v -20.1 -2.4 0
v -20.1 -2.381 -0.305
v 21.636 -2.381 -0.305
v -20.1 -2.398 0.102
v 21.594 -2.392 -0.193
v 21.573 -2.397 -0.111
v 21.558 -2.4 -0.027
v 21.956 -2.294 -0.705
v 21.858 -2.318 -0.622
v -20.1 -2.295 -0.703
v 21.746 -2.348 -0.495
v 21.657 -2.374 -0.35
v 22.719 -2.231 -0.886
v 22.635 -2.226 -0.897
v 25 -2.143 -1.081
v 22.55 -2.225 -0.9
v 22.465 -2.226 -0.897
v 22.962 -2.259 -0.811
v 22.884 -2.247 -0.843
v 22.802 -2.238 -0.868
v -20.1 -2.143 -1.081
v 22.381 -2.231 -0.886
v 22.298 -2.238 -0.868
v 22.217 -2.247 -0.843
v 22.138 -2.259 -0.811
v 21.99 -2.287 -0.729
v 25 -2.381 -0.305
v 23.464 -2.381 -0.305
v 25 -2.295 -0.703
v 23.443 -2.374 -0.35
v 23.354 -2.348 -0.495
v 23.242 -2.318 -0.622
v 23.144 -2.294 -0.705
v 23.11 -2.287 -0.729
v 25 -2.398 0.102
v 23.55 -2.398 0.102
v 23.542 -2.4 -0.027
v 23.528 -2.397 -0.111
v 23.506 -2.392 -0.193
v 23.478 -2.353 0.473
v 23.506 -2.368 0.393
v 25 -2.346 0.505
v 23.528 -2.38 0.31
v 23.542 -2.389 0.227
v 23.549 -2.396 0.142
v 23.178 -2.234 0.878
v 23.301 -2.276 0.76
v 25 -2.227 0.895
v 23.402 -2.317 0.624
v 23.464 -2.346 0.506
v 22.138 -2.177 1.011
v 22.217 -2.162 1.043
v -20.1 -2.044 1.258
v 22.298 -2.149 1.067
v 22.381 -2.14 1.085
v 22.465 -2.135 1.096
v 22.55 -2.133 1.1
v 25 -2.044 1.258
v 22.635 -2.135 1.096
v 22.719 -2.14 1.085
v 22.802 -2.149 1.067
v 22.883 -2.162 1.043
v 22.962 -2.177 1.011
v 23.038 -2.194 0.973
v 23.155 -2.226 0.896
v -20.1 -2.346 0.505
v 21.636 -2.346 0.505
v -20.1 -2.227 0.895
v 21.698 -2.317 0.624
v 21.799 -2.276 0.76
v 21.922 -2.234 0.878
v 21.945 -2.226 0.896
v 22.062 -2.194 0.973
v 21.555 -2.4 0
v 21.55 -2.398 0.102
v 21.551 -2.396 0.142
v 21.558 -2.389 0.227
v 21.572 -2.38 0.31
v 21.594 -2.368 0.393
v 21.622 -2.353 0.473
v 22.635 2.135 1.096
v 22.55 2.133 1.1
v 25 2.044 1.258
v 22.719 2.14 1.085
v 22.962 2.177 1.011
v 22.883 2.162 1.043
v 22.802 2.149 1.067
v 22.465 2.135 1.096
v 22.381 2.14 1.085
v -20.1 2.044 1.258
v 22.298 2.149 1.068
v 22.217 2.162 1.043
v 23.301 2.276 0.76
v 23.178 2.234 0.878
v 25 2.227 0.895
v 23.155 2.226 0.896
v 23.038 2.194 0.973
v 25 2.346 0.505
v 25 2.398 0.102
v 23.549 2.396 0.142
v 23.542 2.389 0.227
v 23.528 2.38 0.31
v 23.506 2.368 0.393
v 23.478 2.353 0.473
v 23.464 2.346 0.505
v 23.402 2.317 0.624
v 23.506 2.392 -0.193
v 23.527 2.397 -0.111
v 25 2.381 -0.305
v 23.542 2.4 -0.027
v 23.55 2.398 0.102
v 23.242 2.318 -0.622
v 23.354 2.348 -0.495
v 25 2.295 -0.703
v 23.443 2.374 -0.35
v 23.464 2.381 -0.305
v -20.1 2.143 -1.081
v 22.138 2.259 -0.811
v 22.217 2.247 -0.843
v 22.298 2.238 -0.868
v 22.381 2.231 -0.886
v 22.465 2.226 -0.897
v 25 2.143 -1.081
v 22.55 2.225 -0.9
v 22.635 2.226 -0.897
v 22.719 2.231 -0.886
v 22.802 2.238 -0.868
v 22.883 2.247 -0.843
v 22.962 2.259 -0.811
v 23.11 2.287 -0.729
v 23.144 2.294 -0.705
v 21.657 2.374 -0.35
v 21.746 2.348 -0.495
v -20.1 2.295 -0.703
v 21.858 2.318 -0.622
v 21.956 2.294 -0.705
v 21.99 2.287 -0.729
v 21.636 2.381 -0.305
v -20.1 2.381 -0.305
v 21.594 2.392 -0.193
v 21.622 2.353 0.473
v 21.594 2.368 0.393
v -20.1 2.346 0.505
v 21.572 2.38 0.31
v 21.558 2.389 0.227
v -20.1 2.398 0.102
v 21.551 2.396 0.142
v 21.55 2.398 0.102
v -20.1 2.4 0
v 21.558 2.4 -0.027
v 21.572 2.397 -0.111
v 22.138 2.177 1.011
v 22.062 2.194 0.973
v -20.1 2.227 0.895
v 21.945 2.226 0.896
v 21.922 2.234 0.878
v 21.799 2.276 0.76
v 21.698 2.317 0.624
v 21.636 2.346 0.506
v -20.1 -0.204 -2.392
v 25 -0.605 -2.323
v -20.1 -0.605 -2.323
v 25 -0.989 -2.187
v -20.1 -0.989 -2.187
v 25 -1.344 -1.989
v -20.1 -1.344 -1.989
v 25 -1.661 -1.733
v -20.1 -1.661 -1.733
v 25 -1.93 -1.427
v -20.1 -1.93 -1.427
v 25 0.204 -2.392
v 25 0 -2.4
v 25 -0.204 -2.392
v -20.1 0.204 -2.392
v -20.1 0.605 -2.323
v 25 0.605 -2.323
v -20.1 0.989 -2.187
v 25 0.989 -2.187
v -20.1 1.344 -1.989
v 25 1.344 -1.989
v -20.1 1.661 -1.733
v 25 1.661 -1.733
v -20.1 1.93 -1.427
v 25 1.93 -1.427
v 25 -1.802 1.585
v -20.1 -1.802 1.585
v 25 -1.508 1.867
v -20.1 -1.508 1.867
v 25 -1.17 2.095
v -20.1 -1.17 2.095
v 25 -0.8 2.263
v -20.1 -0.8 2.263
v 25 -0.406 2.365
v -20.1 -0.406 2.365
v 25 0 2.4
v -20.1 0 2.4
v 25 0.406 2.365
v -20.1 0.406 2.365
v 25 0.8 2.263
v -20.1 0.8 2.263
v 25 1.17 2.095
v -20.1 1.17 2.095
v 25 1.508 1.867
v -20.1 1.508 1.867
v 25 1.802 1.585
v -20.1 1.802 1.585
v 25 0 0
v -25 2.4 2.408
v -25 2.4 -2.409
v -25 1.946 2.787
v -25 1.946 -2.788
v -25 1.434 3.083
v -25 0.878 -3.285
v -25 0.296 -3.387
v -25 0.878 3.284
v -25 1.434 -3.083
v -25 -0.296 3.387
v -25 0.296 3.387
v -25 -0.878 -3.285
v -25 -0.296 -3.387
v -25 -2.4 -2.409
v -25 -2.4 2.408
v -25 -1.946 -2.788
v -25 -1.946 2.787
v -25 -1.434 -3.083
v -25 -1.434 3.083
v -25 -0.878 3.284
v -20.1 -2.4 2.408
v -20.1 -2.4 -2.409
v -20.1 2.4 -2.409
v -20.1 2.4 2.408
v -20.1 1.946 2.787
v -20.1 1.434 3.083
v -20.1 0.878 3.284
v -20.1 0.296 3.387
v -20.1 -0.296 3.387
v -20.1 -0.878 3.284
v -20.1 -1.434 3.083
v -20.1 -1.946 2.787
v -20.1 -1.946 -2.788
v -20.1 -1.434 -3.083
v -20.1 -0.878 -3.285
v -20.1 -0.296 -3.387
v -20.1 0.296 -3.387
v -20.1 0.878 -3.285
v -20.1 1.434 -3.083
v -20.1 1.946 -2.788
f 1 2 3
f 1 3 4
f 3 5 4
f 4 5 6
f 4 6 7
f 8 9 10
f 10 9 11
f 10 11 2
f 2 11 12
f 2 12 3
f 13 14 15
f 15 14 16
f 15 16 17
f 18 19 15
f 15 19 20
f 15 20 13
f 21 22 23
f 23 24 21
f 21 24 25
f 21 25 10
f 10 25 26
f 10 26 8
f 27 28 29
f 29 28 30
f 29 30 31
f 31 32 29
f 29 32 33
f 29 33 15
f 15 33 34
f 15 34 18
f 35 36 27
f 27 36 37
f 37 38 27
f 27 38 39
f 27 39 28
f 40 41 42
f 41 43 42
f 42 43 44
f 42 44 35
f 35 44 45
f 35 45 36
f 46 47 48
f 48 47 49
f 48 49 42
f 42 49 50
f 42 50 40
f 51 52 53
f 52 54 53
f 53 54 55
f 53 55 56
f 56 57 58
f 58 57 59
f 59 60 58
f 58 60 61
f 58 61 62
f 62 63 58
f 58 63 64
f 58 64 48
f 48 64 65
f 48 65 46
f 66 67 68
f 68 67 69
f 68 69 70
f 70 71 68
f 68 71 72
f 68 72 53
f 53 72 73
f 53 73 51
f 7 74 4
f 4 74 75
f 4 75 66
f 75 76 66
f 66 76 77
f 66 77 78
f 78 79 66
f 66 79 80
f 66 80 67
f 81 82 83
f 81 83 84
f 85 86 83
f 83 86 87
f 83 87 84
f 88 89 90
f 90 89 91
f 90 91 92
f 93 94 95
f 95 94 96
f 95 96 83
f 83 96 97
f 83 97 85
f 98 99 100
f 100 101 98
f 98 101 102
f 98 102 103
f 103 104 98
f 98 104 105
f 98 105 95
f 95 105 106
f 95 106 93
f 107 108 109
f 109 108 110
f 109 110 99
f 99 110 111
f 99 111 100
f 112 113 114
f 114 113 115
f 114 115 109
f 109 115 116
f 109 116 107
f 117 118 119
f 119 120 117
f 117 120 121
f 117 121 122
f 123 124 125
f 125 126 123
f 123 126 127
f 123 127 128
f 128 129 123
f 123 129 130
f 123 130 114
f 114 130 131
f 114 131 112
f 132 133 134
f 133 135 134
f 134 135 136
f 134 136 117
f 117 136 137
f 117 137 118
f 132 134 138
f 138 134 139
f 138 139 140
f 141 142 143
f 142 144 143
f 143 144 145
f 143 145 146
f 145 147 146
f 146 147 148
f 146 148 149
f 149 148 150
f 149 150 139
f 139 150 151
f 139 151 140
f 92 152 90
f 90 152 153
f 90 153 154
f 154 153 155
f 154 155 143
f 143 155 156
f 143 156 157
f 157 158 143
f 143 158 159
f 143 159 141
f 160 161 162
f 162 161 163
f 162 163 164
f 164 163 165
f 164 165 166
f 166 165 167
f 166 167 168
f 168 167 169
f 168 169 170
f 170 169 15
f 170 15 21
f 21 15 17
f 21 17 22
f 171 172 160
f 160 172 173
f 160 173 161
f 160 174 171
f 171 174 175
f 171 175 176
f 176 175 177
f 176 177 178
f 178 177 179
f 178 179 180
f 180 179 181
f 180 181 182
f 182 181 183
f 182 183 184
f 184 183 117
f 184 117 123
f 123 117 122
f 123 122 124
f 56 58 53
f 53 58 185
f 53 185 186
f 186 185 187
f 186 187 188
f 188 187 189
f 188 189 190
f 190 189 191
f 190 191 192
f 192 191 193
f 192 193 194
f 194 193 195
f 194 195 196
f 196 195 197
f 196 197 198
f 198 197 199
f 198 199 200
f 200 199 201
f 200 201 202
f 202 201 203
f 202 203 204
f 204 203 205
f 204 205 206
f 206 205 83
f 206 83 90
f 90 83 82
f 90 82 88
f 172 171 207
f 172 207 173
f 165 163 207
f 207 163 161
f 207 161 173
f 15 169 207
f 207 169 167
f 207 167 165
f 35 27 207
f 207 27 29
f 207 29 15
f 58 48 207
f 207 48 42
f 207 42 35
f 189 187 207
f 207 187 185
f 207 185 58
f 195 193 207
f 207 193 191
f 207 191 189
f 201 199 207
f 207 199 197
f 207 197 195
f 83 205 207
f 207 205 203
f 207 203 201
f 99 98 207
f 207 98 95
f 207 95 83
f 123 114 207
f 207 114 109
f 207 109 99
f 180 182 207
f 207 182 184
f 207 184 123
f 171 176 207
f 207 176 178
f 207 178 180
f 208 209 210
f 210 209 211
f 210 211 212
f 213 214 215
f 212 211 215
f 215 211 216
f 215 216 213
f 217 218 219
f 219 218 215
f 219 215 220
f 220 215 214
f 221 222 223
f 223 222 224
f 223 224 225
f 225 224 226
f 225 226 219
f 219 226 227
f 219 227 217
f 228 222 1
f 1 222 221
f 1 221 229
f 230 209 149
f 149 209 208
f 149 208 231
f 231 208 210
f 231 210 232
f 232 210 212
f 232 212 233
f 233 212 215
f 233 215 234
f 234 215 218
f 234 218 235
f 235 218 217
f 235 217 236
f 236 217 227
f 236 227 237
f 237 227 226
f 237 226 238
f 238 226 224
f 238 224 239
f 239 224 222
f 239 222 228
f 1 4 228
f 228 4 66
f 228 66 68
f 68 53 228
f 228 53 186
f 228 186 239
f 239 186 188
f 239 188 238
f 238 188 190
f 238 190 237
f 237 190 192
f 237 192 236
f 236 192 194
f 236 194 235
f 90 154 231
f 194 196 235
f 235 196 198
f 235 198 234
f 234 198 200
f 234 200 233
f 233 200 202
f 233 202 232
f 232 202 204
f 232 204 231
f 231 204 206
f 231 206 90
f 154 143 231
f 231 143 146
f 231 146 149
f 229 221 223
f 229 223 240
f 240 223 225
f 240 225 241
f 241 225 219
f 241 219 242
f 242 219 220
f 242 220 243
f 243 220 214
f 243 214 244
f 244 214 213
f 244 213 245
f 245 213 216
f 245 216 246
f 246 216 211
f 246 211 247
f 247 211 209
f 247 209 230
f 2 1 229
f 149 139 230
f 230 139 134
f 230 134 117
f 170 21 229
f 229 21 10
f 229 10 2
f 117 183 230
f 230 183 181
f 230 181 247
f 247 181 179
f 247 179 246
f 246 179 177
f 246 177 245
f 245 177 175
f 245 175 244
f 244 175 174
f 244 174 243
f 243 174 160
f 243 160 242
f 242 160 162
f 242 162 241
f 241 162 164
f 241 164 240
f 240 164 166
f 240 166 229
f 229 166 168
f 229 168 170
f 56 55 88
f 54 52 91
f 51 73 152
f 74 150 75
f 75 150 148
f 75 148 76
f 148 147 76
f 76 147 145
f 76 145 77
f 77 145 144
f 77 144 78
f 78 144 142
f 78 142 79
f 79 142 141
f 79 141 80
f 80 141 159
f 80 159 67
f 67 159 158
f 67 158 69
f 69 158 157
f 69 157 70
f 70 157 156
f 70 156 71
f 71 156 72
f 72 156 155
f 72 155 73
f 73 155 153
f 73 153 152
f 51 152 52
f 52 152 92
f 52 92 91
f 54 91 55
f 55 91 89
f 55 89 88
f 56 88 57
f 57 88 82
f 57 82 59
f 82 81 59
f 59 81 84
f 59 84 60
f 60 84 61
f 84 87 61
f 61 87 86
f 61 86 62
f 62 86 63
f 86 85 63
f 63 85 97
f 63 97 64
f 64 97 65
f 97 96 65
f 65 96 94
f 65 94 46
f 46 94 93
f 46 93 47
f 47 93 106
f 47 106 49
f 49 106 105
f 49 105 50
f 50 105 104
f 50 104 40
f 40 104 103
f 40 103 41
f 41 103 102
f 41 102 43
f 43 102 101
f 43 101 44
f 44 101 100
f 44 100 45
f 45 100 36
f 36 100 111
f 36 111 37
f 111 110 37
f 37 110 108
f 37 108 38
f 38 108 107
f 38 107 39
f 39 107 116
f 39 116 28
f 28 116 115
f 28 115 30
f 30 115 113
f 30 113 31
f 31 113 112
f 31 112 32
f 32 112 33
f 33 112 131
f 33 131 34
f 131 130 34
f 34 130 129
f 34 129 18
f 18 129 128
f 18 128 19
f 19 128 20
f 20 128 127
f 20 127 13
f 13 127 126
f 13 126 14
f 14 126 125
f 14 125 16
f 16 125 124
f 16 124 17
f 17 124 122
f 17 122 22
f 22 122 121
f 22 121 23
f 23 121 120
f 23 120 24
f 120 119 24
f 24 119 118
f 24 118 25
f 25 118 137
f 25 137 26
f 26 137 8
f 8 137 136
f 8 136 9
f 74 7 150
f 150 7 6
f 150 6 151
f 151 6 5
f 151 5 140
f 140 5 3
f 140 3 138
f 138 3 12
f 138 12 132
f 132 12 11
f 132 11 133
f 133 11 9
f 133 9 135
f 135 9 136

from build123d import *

# Parameters (mm, degrees)
SKETCH2_R               = 2.4
BOSS_EXTRUDE1_DEPTH     = 25
BOSS_EXTRUDE4_DEPTH     = 4.9
SKETCH5_R               = 1
CUT_EXTRUDE2_DEPTH      = 1
CUT_EXTRUDE2_DEPTH_BACK = 5.8


with BuildPart() as part:
    # Sketch2 → Boss-Extrude1 (new body, symmetric)
    with BuildSketch(Plane(origin=(0, 0, 0), x_dir=(0, 0, -1), z_dir=(1, 0, 0))):
        Circle(SKETCH2_R)
    extrude(amount=BOSS_EXTRUDE1_DEPTH, both=True)

    # Sketch3 → Boss-Extrude4 (add)
    with BuildSketch(Plane.ZY.offset(25)):
        with BuildLine():
            Line((0, 2.4), (-2.408318916, 2.4))
            ThreePointArc((-2.408318916, 2.4), (-3.4, 0), (-2.408318916, -2.4))
            Line((-2.408318916, -2.4), (0, -2.4))
            ThreePointArc((0, -2.4), (-2.4, 0), (0, 2.4))
        make_face()
        with BuildLine():
            Line((2.408318916, 2.4), (0, 2.4))
            ThreePointArc((0, 2.4), (1.697056275, 1.697056275), (2.4, 0))
            ThreePointArc((2.4, 0), (1.697056275, -1.697056275), (0, -2.4))
            Line((0, -2.4), (2.408318916, -2.4))
            ThreePointArc((2.408318916, -2.4), (3.142314777, -1.298405885), (3.4, 0))
            ThreePointArc((3.4, 0), (3.142314777, 1.298405885), (2.408318916, 2.4))
        make_face()
    extrude(amount=-BOSS_EXTRUDE4_DEPTH)

    # Sketch5 → Cut-Extrude2 (cut, two sides)
    with BuildSketch(Plane(origin=(0, 2.4, 0), x_dir=(1, 0, 0), z_dir=(0, 1, 0))) as cut_extrude2_sk:
        with Locations((22.55, -0.1)):
            Circle(SKETCH5_R)
    extrude(amount=CUT_EXTRUDE2_DEPTH, mode=Mode.SUBTRACT)
    extrude(cut_extrude2_sk.sketch, amount=-CUT_EXTRUDE2_DEPTH_BACK, mode=Mode.SUBTRACT)


solid = part.part
